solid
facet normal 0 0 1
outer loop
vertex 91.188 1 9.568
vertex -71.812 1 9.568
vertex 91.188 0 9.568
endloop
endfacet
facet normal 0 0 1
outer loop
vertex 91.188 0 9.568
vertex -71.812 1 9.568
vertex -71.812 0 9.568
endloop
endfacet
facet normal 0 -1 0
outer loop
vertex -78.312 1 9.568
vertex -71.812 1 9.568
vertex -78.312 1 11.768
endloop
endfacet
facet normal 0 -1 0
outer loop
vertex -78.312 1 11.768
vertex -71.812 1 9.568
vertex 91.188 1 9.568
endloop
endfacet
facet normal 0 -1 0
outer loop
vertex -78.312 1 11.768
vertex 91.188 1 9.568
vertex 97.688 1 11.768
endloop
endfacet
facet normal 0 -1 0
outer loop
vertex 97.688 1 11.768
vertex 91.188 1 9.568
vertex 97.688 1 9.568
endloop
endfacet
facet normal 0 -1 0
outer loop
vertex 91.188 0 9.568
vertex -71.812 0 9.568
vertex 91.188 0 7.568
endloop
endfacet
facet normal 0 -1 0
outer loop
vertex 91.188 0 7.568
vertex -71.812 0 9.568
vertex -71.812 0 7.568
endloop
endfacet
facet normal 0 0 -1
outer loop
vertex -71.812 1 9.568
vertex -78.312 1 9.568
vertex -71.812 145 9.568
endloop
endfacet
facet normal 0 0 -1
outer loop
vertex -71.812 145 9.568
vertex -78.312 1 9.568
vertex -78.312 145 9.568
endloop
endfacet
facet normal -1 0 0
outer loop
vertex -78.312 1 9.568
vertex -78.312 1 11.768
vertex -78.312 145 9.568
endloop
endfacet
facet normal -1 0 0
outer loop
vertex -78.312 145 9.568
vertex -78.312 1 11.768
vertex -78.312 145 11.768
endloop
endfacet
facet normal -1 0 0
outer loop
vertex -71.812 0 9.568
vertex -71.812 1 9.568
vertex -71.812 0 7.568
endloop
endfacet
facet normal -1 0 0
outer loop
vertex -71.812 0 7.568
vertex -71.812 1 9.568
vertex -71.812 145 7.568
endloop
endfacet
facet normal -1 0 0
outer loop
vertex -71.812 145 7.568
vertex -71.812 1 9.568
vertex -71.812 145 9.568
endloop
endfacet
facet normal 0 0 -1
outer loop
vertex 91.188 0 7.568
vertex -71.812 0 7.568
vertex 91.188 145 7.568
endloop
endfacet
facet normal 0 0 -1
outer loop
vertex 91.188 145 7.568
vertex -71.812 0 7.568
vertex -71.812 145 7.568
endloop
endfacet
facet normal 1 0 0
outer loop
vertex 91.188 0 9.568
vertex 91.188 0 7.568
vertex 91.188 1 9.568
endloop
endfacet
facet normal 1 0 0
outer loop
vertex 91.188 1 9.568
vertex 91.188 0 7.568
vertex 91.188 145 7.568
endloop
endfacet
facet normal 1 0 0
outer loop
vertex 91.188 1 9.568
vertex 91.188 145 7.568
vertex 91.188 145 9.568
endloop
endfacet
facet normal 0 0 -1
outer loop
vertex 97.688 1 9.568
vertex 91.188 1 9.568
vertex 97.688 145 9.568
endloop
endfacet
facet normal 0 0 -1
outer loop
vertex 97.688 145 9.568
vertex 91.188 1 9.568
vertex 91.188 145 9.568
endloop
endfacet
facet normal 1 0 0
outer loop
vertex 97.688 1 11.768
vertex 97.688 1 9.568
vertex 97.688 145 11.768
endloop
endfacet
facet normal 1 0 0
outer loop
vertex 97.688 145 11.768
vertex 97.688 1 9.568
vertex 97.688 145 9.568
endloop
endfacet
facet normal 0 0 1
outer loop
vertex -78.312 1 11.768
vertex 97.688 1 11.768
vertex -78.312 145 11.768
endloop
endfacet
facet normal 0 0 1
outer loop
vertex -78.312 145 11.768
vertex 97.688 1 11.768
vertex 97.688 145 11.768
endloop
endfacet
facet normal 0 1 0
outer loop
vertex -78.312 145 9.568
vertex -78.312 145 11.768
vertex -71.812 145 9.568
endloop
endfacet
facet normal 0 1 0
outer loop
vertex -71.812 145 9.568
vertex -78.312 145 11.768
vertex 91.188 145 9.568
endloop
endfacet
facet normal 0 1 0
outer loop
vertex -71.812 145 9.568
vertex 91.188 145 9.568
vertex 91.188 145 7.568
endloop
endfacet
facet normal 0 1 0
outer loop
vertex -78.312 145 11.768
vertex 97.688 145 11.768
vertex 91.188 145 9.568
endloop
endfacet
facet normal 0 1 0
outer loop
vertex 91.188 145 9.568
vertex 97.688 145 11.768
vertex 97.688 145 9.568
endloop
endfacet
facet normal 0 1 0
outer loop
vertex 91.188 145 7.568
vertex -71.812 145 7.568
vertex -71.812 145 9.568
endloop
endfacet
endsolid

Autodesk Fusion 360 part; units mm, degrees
sketch "Sketch2" plane through (0, 0, 0) normal (0, 1, 0) x (1, 0, 0)
  line L0 (-71.8116, -9.5677) -> (91.1884, -9.5677)
  line L1 (91.1884, -9.5677) -> (91.1884, -7.5677)
  line L2 (91.1884, -7.5677) -> (-71.8116, -7.5677)
  line L3 (-71.8116, -7.5677) -> (-71.8116, -9.5677)
  line L4 (-78.3116, -11.7677) -> (97.6884, -11.7677)
  line L5 (97.6884, -11.7677) -> (97.6884, -9.5677)
  line L6 (97.6884, -9.5677) -> (-78.3116, -9.5677)
  line L7 (-78.3116, -9.5677) -> (-78.3116, -11.7677)
  dimension "d1" = 163
  dimension "d2" = 2
  dimension "d3" = 6.5
  dimension "d4" = 6.5
  dimension "d5" = 2.2
extrude "Extrude1" add sketch "Sketch2" along normal blind 145
extrude "Extrude2" cut sketch "Sketch2" along normal blind 1 contours L0 L4 L5 L6 L7
